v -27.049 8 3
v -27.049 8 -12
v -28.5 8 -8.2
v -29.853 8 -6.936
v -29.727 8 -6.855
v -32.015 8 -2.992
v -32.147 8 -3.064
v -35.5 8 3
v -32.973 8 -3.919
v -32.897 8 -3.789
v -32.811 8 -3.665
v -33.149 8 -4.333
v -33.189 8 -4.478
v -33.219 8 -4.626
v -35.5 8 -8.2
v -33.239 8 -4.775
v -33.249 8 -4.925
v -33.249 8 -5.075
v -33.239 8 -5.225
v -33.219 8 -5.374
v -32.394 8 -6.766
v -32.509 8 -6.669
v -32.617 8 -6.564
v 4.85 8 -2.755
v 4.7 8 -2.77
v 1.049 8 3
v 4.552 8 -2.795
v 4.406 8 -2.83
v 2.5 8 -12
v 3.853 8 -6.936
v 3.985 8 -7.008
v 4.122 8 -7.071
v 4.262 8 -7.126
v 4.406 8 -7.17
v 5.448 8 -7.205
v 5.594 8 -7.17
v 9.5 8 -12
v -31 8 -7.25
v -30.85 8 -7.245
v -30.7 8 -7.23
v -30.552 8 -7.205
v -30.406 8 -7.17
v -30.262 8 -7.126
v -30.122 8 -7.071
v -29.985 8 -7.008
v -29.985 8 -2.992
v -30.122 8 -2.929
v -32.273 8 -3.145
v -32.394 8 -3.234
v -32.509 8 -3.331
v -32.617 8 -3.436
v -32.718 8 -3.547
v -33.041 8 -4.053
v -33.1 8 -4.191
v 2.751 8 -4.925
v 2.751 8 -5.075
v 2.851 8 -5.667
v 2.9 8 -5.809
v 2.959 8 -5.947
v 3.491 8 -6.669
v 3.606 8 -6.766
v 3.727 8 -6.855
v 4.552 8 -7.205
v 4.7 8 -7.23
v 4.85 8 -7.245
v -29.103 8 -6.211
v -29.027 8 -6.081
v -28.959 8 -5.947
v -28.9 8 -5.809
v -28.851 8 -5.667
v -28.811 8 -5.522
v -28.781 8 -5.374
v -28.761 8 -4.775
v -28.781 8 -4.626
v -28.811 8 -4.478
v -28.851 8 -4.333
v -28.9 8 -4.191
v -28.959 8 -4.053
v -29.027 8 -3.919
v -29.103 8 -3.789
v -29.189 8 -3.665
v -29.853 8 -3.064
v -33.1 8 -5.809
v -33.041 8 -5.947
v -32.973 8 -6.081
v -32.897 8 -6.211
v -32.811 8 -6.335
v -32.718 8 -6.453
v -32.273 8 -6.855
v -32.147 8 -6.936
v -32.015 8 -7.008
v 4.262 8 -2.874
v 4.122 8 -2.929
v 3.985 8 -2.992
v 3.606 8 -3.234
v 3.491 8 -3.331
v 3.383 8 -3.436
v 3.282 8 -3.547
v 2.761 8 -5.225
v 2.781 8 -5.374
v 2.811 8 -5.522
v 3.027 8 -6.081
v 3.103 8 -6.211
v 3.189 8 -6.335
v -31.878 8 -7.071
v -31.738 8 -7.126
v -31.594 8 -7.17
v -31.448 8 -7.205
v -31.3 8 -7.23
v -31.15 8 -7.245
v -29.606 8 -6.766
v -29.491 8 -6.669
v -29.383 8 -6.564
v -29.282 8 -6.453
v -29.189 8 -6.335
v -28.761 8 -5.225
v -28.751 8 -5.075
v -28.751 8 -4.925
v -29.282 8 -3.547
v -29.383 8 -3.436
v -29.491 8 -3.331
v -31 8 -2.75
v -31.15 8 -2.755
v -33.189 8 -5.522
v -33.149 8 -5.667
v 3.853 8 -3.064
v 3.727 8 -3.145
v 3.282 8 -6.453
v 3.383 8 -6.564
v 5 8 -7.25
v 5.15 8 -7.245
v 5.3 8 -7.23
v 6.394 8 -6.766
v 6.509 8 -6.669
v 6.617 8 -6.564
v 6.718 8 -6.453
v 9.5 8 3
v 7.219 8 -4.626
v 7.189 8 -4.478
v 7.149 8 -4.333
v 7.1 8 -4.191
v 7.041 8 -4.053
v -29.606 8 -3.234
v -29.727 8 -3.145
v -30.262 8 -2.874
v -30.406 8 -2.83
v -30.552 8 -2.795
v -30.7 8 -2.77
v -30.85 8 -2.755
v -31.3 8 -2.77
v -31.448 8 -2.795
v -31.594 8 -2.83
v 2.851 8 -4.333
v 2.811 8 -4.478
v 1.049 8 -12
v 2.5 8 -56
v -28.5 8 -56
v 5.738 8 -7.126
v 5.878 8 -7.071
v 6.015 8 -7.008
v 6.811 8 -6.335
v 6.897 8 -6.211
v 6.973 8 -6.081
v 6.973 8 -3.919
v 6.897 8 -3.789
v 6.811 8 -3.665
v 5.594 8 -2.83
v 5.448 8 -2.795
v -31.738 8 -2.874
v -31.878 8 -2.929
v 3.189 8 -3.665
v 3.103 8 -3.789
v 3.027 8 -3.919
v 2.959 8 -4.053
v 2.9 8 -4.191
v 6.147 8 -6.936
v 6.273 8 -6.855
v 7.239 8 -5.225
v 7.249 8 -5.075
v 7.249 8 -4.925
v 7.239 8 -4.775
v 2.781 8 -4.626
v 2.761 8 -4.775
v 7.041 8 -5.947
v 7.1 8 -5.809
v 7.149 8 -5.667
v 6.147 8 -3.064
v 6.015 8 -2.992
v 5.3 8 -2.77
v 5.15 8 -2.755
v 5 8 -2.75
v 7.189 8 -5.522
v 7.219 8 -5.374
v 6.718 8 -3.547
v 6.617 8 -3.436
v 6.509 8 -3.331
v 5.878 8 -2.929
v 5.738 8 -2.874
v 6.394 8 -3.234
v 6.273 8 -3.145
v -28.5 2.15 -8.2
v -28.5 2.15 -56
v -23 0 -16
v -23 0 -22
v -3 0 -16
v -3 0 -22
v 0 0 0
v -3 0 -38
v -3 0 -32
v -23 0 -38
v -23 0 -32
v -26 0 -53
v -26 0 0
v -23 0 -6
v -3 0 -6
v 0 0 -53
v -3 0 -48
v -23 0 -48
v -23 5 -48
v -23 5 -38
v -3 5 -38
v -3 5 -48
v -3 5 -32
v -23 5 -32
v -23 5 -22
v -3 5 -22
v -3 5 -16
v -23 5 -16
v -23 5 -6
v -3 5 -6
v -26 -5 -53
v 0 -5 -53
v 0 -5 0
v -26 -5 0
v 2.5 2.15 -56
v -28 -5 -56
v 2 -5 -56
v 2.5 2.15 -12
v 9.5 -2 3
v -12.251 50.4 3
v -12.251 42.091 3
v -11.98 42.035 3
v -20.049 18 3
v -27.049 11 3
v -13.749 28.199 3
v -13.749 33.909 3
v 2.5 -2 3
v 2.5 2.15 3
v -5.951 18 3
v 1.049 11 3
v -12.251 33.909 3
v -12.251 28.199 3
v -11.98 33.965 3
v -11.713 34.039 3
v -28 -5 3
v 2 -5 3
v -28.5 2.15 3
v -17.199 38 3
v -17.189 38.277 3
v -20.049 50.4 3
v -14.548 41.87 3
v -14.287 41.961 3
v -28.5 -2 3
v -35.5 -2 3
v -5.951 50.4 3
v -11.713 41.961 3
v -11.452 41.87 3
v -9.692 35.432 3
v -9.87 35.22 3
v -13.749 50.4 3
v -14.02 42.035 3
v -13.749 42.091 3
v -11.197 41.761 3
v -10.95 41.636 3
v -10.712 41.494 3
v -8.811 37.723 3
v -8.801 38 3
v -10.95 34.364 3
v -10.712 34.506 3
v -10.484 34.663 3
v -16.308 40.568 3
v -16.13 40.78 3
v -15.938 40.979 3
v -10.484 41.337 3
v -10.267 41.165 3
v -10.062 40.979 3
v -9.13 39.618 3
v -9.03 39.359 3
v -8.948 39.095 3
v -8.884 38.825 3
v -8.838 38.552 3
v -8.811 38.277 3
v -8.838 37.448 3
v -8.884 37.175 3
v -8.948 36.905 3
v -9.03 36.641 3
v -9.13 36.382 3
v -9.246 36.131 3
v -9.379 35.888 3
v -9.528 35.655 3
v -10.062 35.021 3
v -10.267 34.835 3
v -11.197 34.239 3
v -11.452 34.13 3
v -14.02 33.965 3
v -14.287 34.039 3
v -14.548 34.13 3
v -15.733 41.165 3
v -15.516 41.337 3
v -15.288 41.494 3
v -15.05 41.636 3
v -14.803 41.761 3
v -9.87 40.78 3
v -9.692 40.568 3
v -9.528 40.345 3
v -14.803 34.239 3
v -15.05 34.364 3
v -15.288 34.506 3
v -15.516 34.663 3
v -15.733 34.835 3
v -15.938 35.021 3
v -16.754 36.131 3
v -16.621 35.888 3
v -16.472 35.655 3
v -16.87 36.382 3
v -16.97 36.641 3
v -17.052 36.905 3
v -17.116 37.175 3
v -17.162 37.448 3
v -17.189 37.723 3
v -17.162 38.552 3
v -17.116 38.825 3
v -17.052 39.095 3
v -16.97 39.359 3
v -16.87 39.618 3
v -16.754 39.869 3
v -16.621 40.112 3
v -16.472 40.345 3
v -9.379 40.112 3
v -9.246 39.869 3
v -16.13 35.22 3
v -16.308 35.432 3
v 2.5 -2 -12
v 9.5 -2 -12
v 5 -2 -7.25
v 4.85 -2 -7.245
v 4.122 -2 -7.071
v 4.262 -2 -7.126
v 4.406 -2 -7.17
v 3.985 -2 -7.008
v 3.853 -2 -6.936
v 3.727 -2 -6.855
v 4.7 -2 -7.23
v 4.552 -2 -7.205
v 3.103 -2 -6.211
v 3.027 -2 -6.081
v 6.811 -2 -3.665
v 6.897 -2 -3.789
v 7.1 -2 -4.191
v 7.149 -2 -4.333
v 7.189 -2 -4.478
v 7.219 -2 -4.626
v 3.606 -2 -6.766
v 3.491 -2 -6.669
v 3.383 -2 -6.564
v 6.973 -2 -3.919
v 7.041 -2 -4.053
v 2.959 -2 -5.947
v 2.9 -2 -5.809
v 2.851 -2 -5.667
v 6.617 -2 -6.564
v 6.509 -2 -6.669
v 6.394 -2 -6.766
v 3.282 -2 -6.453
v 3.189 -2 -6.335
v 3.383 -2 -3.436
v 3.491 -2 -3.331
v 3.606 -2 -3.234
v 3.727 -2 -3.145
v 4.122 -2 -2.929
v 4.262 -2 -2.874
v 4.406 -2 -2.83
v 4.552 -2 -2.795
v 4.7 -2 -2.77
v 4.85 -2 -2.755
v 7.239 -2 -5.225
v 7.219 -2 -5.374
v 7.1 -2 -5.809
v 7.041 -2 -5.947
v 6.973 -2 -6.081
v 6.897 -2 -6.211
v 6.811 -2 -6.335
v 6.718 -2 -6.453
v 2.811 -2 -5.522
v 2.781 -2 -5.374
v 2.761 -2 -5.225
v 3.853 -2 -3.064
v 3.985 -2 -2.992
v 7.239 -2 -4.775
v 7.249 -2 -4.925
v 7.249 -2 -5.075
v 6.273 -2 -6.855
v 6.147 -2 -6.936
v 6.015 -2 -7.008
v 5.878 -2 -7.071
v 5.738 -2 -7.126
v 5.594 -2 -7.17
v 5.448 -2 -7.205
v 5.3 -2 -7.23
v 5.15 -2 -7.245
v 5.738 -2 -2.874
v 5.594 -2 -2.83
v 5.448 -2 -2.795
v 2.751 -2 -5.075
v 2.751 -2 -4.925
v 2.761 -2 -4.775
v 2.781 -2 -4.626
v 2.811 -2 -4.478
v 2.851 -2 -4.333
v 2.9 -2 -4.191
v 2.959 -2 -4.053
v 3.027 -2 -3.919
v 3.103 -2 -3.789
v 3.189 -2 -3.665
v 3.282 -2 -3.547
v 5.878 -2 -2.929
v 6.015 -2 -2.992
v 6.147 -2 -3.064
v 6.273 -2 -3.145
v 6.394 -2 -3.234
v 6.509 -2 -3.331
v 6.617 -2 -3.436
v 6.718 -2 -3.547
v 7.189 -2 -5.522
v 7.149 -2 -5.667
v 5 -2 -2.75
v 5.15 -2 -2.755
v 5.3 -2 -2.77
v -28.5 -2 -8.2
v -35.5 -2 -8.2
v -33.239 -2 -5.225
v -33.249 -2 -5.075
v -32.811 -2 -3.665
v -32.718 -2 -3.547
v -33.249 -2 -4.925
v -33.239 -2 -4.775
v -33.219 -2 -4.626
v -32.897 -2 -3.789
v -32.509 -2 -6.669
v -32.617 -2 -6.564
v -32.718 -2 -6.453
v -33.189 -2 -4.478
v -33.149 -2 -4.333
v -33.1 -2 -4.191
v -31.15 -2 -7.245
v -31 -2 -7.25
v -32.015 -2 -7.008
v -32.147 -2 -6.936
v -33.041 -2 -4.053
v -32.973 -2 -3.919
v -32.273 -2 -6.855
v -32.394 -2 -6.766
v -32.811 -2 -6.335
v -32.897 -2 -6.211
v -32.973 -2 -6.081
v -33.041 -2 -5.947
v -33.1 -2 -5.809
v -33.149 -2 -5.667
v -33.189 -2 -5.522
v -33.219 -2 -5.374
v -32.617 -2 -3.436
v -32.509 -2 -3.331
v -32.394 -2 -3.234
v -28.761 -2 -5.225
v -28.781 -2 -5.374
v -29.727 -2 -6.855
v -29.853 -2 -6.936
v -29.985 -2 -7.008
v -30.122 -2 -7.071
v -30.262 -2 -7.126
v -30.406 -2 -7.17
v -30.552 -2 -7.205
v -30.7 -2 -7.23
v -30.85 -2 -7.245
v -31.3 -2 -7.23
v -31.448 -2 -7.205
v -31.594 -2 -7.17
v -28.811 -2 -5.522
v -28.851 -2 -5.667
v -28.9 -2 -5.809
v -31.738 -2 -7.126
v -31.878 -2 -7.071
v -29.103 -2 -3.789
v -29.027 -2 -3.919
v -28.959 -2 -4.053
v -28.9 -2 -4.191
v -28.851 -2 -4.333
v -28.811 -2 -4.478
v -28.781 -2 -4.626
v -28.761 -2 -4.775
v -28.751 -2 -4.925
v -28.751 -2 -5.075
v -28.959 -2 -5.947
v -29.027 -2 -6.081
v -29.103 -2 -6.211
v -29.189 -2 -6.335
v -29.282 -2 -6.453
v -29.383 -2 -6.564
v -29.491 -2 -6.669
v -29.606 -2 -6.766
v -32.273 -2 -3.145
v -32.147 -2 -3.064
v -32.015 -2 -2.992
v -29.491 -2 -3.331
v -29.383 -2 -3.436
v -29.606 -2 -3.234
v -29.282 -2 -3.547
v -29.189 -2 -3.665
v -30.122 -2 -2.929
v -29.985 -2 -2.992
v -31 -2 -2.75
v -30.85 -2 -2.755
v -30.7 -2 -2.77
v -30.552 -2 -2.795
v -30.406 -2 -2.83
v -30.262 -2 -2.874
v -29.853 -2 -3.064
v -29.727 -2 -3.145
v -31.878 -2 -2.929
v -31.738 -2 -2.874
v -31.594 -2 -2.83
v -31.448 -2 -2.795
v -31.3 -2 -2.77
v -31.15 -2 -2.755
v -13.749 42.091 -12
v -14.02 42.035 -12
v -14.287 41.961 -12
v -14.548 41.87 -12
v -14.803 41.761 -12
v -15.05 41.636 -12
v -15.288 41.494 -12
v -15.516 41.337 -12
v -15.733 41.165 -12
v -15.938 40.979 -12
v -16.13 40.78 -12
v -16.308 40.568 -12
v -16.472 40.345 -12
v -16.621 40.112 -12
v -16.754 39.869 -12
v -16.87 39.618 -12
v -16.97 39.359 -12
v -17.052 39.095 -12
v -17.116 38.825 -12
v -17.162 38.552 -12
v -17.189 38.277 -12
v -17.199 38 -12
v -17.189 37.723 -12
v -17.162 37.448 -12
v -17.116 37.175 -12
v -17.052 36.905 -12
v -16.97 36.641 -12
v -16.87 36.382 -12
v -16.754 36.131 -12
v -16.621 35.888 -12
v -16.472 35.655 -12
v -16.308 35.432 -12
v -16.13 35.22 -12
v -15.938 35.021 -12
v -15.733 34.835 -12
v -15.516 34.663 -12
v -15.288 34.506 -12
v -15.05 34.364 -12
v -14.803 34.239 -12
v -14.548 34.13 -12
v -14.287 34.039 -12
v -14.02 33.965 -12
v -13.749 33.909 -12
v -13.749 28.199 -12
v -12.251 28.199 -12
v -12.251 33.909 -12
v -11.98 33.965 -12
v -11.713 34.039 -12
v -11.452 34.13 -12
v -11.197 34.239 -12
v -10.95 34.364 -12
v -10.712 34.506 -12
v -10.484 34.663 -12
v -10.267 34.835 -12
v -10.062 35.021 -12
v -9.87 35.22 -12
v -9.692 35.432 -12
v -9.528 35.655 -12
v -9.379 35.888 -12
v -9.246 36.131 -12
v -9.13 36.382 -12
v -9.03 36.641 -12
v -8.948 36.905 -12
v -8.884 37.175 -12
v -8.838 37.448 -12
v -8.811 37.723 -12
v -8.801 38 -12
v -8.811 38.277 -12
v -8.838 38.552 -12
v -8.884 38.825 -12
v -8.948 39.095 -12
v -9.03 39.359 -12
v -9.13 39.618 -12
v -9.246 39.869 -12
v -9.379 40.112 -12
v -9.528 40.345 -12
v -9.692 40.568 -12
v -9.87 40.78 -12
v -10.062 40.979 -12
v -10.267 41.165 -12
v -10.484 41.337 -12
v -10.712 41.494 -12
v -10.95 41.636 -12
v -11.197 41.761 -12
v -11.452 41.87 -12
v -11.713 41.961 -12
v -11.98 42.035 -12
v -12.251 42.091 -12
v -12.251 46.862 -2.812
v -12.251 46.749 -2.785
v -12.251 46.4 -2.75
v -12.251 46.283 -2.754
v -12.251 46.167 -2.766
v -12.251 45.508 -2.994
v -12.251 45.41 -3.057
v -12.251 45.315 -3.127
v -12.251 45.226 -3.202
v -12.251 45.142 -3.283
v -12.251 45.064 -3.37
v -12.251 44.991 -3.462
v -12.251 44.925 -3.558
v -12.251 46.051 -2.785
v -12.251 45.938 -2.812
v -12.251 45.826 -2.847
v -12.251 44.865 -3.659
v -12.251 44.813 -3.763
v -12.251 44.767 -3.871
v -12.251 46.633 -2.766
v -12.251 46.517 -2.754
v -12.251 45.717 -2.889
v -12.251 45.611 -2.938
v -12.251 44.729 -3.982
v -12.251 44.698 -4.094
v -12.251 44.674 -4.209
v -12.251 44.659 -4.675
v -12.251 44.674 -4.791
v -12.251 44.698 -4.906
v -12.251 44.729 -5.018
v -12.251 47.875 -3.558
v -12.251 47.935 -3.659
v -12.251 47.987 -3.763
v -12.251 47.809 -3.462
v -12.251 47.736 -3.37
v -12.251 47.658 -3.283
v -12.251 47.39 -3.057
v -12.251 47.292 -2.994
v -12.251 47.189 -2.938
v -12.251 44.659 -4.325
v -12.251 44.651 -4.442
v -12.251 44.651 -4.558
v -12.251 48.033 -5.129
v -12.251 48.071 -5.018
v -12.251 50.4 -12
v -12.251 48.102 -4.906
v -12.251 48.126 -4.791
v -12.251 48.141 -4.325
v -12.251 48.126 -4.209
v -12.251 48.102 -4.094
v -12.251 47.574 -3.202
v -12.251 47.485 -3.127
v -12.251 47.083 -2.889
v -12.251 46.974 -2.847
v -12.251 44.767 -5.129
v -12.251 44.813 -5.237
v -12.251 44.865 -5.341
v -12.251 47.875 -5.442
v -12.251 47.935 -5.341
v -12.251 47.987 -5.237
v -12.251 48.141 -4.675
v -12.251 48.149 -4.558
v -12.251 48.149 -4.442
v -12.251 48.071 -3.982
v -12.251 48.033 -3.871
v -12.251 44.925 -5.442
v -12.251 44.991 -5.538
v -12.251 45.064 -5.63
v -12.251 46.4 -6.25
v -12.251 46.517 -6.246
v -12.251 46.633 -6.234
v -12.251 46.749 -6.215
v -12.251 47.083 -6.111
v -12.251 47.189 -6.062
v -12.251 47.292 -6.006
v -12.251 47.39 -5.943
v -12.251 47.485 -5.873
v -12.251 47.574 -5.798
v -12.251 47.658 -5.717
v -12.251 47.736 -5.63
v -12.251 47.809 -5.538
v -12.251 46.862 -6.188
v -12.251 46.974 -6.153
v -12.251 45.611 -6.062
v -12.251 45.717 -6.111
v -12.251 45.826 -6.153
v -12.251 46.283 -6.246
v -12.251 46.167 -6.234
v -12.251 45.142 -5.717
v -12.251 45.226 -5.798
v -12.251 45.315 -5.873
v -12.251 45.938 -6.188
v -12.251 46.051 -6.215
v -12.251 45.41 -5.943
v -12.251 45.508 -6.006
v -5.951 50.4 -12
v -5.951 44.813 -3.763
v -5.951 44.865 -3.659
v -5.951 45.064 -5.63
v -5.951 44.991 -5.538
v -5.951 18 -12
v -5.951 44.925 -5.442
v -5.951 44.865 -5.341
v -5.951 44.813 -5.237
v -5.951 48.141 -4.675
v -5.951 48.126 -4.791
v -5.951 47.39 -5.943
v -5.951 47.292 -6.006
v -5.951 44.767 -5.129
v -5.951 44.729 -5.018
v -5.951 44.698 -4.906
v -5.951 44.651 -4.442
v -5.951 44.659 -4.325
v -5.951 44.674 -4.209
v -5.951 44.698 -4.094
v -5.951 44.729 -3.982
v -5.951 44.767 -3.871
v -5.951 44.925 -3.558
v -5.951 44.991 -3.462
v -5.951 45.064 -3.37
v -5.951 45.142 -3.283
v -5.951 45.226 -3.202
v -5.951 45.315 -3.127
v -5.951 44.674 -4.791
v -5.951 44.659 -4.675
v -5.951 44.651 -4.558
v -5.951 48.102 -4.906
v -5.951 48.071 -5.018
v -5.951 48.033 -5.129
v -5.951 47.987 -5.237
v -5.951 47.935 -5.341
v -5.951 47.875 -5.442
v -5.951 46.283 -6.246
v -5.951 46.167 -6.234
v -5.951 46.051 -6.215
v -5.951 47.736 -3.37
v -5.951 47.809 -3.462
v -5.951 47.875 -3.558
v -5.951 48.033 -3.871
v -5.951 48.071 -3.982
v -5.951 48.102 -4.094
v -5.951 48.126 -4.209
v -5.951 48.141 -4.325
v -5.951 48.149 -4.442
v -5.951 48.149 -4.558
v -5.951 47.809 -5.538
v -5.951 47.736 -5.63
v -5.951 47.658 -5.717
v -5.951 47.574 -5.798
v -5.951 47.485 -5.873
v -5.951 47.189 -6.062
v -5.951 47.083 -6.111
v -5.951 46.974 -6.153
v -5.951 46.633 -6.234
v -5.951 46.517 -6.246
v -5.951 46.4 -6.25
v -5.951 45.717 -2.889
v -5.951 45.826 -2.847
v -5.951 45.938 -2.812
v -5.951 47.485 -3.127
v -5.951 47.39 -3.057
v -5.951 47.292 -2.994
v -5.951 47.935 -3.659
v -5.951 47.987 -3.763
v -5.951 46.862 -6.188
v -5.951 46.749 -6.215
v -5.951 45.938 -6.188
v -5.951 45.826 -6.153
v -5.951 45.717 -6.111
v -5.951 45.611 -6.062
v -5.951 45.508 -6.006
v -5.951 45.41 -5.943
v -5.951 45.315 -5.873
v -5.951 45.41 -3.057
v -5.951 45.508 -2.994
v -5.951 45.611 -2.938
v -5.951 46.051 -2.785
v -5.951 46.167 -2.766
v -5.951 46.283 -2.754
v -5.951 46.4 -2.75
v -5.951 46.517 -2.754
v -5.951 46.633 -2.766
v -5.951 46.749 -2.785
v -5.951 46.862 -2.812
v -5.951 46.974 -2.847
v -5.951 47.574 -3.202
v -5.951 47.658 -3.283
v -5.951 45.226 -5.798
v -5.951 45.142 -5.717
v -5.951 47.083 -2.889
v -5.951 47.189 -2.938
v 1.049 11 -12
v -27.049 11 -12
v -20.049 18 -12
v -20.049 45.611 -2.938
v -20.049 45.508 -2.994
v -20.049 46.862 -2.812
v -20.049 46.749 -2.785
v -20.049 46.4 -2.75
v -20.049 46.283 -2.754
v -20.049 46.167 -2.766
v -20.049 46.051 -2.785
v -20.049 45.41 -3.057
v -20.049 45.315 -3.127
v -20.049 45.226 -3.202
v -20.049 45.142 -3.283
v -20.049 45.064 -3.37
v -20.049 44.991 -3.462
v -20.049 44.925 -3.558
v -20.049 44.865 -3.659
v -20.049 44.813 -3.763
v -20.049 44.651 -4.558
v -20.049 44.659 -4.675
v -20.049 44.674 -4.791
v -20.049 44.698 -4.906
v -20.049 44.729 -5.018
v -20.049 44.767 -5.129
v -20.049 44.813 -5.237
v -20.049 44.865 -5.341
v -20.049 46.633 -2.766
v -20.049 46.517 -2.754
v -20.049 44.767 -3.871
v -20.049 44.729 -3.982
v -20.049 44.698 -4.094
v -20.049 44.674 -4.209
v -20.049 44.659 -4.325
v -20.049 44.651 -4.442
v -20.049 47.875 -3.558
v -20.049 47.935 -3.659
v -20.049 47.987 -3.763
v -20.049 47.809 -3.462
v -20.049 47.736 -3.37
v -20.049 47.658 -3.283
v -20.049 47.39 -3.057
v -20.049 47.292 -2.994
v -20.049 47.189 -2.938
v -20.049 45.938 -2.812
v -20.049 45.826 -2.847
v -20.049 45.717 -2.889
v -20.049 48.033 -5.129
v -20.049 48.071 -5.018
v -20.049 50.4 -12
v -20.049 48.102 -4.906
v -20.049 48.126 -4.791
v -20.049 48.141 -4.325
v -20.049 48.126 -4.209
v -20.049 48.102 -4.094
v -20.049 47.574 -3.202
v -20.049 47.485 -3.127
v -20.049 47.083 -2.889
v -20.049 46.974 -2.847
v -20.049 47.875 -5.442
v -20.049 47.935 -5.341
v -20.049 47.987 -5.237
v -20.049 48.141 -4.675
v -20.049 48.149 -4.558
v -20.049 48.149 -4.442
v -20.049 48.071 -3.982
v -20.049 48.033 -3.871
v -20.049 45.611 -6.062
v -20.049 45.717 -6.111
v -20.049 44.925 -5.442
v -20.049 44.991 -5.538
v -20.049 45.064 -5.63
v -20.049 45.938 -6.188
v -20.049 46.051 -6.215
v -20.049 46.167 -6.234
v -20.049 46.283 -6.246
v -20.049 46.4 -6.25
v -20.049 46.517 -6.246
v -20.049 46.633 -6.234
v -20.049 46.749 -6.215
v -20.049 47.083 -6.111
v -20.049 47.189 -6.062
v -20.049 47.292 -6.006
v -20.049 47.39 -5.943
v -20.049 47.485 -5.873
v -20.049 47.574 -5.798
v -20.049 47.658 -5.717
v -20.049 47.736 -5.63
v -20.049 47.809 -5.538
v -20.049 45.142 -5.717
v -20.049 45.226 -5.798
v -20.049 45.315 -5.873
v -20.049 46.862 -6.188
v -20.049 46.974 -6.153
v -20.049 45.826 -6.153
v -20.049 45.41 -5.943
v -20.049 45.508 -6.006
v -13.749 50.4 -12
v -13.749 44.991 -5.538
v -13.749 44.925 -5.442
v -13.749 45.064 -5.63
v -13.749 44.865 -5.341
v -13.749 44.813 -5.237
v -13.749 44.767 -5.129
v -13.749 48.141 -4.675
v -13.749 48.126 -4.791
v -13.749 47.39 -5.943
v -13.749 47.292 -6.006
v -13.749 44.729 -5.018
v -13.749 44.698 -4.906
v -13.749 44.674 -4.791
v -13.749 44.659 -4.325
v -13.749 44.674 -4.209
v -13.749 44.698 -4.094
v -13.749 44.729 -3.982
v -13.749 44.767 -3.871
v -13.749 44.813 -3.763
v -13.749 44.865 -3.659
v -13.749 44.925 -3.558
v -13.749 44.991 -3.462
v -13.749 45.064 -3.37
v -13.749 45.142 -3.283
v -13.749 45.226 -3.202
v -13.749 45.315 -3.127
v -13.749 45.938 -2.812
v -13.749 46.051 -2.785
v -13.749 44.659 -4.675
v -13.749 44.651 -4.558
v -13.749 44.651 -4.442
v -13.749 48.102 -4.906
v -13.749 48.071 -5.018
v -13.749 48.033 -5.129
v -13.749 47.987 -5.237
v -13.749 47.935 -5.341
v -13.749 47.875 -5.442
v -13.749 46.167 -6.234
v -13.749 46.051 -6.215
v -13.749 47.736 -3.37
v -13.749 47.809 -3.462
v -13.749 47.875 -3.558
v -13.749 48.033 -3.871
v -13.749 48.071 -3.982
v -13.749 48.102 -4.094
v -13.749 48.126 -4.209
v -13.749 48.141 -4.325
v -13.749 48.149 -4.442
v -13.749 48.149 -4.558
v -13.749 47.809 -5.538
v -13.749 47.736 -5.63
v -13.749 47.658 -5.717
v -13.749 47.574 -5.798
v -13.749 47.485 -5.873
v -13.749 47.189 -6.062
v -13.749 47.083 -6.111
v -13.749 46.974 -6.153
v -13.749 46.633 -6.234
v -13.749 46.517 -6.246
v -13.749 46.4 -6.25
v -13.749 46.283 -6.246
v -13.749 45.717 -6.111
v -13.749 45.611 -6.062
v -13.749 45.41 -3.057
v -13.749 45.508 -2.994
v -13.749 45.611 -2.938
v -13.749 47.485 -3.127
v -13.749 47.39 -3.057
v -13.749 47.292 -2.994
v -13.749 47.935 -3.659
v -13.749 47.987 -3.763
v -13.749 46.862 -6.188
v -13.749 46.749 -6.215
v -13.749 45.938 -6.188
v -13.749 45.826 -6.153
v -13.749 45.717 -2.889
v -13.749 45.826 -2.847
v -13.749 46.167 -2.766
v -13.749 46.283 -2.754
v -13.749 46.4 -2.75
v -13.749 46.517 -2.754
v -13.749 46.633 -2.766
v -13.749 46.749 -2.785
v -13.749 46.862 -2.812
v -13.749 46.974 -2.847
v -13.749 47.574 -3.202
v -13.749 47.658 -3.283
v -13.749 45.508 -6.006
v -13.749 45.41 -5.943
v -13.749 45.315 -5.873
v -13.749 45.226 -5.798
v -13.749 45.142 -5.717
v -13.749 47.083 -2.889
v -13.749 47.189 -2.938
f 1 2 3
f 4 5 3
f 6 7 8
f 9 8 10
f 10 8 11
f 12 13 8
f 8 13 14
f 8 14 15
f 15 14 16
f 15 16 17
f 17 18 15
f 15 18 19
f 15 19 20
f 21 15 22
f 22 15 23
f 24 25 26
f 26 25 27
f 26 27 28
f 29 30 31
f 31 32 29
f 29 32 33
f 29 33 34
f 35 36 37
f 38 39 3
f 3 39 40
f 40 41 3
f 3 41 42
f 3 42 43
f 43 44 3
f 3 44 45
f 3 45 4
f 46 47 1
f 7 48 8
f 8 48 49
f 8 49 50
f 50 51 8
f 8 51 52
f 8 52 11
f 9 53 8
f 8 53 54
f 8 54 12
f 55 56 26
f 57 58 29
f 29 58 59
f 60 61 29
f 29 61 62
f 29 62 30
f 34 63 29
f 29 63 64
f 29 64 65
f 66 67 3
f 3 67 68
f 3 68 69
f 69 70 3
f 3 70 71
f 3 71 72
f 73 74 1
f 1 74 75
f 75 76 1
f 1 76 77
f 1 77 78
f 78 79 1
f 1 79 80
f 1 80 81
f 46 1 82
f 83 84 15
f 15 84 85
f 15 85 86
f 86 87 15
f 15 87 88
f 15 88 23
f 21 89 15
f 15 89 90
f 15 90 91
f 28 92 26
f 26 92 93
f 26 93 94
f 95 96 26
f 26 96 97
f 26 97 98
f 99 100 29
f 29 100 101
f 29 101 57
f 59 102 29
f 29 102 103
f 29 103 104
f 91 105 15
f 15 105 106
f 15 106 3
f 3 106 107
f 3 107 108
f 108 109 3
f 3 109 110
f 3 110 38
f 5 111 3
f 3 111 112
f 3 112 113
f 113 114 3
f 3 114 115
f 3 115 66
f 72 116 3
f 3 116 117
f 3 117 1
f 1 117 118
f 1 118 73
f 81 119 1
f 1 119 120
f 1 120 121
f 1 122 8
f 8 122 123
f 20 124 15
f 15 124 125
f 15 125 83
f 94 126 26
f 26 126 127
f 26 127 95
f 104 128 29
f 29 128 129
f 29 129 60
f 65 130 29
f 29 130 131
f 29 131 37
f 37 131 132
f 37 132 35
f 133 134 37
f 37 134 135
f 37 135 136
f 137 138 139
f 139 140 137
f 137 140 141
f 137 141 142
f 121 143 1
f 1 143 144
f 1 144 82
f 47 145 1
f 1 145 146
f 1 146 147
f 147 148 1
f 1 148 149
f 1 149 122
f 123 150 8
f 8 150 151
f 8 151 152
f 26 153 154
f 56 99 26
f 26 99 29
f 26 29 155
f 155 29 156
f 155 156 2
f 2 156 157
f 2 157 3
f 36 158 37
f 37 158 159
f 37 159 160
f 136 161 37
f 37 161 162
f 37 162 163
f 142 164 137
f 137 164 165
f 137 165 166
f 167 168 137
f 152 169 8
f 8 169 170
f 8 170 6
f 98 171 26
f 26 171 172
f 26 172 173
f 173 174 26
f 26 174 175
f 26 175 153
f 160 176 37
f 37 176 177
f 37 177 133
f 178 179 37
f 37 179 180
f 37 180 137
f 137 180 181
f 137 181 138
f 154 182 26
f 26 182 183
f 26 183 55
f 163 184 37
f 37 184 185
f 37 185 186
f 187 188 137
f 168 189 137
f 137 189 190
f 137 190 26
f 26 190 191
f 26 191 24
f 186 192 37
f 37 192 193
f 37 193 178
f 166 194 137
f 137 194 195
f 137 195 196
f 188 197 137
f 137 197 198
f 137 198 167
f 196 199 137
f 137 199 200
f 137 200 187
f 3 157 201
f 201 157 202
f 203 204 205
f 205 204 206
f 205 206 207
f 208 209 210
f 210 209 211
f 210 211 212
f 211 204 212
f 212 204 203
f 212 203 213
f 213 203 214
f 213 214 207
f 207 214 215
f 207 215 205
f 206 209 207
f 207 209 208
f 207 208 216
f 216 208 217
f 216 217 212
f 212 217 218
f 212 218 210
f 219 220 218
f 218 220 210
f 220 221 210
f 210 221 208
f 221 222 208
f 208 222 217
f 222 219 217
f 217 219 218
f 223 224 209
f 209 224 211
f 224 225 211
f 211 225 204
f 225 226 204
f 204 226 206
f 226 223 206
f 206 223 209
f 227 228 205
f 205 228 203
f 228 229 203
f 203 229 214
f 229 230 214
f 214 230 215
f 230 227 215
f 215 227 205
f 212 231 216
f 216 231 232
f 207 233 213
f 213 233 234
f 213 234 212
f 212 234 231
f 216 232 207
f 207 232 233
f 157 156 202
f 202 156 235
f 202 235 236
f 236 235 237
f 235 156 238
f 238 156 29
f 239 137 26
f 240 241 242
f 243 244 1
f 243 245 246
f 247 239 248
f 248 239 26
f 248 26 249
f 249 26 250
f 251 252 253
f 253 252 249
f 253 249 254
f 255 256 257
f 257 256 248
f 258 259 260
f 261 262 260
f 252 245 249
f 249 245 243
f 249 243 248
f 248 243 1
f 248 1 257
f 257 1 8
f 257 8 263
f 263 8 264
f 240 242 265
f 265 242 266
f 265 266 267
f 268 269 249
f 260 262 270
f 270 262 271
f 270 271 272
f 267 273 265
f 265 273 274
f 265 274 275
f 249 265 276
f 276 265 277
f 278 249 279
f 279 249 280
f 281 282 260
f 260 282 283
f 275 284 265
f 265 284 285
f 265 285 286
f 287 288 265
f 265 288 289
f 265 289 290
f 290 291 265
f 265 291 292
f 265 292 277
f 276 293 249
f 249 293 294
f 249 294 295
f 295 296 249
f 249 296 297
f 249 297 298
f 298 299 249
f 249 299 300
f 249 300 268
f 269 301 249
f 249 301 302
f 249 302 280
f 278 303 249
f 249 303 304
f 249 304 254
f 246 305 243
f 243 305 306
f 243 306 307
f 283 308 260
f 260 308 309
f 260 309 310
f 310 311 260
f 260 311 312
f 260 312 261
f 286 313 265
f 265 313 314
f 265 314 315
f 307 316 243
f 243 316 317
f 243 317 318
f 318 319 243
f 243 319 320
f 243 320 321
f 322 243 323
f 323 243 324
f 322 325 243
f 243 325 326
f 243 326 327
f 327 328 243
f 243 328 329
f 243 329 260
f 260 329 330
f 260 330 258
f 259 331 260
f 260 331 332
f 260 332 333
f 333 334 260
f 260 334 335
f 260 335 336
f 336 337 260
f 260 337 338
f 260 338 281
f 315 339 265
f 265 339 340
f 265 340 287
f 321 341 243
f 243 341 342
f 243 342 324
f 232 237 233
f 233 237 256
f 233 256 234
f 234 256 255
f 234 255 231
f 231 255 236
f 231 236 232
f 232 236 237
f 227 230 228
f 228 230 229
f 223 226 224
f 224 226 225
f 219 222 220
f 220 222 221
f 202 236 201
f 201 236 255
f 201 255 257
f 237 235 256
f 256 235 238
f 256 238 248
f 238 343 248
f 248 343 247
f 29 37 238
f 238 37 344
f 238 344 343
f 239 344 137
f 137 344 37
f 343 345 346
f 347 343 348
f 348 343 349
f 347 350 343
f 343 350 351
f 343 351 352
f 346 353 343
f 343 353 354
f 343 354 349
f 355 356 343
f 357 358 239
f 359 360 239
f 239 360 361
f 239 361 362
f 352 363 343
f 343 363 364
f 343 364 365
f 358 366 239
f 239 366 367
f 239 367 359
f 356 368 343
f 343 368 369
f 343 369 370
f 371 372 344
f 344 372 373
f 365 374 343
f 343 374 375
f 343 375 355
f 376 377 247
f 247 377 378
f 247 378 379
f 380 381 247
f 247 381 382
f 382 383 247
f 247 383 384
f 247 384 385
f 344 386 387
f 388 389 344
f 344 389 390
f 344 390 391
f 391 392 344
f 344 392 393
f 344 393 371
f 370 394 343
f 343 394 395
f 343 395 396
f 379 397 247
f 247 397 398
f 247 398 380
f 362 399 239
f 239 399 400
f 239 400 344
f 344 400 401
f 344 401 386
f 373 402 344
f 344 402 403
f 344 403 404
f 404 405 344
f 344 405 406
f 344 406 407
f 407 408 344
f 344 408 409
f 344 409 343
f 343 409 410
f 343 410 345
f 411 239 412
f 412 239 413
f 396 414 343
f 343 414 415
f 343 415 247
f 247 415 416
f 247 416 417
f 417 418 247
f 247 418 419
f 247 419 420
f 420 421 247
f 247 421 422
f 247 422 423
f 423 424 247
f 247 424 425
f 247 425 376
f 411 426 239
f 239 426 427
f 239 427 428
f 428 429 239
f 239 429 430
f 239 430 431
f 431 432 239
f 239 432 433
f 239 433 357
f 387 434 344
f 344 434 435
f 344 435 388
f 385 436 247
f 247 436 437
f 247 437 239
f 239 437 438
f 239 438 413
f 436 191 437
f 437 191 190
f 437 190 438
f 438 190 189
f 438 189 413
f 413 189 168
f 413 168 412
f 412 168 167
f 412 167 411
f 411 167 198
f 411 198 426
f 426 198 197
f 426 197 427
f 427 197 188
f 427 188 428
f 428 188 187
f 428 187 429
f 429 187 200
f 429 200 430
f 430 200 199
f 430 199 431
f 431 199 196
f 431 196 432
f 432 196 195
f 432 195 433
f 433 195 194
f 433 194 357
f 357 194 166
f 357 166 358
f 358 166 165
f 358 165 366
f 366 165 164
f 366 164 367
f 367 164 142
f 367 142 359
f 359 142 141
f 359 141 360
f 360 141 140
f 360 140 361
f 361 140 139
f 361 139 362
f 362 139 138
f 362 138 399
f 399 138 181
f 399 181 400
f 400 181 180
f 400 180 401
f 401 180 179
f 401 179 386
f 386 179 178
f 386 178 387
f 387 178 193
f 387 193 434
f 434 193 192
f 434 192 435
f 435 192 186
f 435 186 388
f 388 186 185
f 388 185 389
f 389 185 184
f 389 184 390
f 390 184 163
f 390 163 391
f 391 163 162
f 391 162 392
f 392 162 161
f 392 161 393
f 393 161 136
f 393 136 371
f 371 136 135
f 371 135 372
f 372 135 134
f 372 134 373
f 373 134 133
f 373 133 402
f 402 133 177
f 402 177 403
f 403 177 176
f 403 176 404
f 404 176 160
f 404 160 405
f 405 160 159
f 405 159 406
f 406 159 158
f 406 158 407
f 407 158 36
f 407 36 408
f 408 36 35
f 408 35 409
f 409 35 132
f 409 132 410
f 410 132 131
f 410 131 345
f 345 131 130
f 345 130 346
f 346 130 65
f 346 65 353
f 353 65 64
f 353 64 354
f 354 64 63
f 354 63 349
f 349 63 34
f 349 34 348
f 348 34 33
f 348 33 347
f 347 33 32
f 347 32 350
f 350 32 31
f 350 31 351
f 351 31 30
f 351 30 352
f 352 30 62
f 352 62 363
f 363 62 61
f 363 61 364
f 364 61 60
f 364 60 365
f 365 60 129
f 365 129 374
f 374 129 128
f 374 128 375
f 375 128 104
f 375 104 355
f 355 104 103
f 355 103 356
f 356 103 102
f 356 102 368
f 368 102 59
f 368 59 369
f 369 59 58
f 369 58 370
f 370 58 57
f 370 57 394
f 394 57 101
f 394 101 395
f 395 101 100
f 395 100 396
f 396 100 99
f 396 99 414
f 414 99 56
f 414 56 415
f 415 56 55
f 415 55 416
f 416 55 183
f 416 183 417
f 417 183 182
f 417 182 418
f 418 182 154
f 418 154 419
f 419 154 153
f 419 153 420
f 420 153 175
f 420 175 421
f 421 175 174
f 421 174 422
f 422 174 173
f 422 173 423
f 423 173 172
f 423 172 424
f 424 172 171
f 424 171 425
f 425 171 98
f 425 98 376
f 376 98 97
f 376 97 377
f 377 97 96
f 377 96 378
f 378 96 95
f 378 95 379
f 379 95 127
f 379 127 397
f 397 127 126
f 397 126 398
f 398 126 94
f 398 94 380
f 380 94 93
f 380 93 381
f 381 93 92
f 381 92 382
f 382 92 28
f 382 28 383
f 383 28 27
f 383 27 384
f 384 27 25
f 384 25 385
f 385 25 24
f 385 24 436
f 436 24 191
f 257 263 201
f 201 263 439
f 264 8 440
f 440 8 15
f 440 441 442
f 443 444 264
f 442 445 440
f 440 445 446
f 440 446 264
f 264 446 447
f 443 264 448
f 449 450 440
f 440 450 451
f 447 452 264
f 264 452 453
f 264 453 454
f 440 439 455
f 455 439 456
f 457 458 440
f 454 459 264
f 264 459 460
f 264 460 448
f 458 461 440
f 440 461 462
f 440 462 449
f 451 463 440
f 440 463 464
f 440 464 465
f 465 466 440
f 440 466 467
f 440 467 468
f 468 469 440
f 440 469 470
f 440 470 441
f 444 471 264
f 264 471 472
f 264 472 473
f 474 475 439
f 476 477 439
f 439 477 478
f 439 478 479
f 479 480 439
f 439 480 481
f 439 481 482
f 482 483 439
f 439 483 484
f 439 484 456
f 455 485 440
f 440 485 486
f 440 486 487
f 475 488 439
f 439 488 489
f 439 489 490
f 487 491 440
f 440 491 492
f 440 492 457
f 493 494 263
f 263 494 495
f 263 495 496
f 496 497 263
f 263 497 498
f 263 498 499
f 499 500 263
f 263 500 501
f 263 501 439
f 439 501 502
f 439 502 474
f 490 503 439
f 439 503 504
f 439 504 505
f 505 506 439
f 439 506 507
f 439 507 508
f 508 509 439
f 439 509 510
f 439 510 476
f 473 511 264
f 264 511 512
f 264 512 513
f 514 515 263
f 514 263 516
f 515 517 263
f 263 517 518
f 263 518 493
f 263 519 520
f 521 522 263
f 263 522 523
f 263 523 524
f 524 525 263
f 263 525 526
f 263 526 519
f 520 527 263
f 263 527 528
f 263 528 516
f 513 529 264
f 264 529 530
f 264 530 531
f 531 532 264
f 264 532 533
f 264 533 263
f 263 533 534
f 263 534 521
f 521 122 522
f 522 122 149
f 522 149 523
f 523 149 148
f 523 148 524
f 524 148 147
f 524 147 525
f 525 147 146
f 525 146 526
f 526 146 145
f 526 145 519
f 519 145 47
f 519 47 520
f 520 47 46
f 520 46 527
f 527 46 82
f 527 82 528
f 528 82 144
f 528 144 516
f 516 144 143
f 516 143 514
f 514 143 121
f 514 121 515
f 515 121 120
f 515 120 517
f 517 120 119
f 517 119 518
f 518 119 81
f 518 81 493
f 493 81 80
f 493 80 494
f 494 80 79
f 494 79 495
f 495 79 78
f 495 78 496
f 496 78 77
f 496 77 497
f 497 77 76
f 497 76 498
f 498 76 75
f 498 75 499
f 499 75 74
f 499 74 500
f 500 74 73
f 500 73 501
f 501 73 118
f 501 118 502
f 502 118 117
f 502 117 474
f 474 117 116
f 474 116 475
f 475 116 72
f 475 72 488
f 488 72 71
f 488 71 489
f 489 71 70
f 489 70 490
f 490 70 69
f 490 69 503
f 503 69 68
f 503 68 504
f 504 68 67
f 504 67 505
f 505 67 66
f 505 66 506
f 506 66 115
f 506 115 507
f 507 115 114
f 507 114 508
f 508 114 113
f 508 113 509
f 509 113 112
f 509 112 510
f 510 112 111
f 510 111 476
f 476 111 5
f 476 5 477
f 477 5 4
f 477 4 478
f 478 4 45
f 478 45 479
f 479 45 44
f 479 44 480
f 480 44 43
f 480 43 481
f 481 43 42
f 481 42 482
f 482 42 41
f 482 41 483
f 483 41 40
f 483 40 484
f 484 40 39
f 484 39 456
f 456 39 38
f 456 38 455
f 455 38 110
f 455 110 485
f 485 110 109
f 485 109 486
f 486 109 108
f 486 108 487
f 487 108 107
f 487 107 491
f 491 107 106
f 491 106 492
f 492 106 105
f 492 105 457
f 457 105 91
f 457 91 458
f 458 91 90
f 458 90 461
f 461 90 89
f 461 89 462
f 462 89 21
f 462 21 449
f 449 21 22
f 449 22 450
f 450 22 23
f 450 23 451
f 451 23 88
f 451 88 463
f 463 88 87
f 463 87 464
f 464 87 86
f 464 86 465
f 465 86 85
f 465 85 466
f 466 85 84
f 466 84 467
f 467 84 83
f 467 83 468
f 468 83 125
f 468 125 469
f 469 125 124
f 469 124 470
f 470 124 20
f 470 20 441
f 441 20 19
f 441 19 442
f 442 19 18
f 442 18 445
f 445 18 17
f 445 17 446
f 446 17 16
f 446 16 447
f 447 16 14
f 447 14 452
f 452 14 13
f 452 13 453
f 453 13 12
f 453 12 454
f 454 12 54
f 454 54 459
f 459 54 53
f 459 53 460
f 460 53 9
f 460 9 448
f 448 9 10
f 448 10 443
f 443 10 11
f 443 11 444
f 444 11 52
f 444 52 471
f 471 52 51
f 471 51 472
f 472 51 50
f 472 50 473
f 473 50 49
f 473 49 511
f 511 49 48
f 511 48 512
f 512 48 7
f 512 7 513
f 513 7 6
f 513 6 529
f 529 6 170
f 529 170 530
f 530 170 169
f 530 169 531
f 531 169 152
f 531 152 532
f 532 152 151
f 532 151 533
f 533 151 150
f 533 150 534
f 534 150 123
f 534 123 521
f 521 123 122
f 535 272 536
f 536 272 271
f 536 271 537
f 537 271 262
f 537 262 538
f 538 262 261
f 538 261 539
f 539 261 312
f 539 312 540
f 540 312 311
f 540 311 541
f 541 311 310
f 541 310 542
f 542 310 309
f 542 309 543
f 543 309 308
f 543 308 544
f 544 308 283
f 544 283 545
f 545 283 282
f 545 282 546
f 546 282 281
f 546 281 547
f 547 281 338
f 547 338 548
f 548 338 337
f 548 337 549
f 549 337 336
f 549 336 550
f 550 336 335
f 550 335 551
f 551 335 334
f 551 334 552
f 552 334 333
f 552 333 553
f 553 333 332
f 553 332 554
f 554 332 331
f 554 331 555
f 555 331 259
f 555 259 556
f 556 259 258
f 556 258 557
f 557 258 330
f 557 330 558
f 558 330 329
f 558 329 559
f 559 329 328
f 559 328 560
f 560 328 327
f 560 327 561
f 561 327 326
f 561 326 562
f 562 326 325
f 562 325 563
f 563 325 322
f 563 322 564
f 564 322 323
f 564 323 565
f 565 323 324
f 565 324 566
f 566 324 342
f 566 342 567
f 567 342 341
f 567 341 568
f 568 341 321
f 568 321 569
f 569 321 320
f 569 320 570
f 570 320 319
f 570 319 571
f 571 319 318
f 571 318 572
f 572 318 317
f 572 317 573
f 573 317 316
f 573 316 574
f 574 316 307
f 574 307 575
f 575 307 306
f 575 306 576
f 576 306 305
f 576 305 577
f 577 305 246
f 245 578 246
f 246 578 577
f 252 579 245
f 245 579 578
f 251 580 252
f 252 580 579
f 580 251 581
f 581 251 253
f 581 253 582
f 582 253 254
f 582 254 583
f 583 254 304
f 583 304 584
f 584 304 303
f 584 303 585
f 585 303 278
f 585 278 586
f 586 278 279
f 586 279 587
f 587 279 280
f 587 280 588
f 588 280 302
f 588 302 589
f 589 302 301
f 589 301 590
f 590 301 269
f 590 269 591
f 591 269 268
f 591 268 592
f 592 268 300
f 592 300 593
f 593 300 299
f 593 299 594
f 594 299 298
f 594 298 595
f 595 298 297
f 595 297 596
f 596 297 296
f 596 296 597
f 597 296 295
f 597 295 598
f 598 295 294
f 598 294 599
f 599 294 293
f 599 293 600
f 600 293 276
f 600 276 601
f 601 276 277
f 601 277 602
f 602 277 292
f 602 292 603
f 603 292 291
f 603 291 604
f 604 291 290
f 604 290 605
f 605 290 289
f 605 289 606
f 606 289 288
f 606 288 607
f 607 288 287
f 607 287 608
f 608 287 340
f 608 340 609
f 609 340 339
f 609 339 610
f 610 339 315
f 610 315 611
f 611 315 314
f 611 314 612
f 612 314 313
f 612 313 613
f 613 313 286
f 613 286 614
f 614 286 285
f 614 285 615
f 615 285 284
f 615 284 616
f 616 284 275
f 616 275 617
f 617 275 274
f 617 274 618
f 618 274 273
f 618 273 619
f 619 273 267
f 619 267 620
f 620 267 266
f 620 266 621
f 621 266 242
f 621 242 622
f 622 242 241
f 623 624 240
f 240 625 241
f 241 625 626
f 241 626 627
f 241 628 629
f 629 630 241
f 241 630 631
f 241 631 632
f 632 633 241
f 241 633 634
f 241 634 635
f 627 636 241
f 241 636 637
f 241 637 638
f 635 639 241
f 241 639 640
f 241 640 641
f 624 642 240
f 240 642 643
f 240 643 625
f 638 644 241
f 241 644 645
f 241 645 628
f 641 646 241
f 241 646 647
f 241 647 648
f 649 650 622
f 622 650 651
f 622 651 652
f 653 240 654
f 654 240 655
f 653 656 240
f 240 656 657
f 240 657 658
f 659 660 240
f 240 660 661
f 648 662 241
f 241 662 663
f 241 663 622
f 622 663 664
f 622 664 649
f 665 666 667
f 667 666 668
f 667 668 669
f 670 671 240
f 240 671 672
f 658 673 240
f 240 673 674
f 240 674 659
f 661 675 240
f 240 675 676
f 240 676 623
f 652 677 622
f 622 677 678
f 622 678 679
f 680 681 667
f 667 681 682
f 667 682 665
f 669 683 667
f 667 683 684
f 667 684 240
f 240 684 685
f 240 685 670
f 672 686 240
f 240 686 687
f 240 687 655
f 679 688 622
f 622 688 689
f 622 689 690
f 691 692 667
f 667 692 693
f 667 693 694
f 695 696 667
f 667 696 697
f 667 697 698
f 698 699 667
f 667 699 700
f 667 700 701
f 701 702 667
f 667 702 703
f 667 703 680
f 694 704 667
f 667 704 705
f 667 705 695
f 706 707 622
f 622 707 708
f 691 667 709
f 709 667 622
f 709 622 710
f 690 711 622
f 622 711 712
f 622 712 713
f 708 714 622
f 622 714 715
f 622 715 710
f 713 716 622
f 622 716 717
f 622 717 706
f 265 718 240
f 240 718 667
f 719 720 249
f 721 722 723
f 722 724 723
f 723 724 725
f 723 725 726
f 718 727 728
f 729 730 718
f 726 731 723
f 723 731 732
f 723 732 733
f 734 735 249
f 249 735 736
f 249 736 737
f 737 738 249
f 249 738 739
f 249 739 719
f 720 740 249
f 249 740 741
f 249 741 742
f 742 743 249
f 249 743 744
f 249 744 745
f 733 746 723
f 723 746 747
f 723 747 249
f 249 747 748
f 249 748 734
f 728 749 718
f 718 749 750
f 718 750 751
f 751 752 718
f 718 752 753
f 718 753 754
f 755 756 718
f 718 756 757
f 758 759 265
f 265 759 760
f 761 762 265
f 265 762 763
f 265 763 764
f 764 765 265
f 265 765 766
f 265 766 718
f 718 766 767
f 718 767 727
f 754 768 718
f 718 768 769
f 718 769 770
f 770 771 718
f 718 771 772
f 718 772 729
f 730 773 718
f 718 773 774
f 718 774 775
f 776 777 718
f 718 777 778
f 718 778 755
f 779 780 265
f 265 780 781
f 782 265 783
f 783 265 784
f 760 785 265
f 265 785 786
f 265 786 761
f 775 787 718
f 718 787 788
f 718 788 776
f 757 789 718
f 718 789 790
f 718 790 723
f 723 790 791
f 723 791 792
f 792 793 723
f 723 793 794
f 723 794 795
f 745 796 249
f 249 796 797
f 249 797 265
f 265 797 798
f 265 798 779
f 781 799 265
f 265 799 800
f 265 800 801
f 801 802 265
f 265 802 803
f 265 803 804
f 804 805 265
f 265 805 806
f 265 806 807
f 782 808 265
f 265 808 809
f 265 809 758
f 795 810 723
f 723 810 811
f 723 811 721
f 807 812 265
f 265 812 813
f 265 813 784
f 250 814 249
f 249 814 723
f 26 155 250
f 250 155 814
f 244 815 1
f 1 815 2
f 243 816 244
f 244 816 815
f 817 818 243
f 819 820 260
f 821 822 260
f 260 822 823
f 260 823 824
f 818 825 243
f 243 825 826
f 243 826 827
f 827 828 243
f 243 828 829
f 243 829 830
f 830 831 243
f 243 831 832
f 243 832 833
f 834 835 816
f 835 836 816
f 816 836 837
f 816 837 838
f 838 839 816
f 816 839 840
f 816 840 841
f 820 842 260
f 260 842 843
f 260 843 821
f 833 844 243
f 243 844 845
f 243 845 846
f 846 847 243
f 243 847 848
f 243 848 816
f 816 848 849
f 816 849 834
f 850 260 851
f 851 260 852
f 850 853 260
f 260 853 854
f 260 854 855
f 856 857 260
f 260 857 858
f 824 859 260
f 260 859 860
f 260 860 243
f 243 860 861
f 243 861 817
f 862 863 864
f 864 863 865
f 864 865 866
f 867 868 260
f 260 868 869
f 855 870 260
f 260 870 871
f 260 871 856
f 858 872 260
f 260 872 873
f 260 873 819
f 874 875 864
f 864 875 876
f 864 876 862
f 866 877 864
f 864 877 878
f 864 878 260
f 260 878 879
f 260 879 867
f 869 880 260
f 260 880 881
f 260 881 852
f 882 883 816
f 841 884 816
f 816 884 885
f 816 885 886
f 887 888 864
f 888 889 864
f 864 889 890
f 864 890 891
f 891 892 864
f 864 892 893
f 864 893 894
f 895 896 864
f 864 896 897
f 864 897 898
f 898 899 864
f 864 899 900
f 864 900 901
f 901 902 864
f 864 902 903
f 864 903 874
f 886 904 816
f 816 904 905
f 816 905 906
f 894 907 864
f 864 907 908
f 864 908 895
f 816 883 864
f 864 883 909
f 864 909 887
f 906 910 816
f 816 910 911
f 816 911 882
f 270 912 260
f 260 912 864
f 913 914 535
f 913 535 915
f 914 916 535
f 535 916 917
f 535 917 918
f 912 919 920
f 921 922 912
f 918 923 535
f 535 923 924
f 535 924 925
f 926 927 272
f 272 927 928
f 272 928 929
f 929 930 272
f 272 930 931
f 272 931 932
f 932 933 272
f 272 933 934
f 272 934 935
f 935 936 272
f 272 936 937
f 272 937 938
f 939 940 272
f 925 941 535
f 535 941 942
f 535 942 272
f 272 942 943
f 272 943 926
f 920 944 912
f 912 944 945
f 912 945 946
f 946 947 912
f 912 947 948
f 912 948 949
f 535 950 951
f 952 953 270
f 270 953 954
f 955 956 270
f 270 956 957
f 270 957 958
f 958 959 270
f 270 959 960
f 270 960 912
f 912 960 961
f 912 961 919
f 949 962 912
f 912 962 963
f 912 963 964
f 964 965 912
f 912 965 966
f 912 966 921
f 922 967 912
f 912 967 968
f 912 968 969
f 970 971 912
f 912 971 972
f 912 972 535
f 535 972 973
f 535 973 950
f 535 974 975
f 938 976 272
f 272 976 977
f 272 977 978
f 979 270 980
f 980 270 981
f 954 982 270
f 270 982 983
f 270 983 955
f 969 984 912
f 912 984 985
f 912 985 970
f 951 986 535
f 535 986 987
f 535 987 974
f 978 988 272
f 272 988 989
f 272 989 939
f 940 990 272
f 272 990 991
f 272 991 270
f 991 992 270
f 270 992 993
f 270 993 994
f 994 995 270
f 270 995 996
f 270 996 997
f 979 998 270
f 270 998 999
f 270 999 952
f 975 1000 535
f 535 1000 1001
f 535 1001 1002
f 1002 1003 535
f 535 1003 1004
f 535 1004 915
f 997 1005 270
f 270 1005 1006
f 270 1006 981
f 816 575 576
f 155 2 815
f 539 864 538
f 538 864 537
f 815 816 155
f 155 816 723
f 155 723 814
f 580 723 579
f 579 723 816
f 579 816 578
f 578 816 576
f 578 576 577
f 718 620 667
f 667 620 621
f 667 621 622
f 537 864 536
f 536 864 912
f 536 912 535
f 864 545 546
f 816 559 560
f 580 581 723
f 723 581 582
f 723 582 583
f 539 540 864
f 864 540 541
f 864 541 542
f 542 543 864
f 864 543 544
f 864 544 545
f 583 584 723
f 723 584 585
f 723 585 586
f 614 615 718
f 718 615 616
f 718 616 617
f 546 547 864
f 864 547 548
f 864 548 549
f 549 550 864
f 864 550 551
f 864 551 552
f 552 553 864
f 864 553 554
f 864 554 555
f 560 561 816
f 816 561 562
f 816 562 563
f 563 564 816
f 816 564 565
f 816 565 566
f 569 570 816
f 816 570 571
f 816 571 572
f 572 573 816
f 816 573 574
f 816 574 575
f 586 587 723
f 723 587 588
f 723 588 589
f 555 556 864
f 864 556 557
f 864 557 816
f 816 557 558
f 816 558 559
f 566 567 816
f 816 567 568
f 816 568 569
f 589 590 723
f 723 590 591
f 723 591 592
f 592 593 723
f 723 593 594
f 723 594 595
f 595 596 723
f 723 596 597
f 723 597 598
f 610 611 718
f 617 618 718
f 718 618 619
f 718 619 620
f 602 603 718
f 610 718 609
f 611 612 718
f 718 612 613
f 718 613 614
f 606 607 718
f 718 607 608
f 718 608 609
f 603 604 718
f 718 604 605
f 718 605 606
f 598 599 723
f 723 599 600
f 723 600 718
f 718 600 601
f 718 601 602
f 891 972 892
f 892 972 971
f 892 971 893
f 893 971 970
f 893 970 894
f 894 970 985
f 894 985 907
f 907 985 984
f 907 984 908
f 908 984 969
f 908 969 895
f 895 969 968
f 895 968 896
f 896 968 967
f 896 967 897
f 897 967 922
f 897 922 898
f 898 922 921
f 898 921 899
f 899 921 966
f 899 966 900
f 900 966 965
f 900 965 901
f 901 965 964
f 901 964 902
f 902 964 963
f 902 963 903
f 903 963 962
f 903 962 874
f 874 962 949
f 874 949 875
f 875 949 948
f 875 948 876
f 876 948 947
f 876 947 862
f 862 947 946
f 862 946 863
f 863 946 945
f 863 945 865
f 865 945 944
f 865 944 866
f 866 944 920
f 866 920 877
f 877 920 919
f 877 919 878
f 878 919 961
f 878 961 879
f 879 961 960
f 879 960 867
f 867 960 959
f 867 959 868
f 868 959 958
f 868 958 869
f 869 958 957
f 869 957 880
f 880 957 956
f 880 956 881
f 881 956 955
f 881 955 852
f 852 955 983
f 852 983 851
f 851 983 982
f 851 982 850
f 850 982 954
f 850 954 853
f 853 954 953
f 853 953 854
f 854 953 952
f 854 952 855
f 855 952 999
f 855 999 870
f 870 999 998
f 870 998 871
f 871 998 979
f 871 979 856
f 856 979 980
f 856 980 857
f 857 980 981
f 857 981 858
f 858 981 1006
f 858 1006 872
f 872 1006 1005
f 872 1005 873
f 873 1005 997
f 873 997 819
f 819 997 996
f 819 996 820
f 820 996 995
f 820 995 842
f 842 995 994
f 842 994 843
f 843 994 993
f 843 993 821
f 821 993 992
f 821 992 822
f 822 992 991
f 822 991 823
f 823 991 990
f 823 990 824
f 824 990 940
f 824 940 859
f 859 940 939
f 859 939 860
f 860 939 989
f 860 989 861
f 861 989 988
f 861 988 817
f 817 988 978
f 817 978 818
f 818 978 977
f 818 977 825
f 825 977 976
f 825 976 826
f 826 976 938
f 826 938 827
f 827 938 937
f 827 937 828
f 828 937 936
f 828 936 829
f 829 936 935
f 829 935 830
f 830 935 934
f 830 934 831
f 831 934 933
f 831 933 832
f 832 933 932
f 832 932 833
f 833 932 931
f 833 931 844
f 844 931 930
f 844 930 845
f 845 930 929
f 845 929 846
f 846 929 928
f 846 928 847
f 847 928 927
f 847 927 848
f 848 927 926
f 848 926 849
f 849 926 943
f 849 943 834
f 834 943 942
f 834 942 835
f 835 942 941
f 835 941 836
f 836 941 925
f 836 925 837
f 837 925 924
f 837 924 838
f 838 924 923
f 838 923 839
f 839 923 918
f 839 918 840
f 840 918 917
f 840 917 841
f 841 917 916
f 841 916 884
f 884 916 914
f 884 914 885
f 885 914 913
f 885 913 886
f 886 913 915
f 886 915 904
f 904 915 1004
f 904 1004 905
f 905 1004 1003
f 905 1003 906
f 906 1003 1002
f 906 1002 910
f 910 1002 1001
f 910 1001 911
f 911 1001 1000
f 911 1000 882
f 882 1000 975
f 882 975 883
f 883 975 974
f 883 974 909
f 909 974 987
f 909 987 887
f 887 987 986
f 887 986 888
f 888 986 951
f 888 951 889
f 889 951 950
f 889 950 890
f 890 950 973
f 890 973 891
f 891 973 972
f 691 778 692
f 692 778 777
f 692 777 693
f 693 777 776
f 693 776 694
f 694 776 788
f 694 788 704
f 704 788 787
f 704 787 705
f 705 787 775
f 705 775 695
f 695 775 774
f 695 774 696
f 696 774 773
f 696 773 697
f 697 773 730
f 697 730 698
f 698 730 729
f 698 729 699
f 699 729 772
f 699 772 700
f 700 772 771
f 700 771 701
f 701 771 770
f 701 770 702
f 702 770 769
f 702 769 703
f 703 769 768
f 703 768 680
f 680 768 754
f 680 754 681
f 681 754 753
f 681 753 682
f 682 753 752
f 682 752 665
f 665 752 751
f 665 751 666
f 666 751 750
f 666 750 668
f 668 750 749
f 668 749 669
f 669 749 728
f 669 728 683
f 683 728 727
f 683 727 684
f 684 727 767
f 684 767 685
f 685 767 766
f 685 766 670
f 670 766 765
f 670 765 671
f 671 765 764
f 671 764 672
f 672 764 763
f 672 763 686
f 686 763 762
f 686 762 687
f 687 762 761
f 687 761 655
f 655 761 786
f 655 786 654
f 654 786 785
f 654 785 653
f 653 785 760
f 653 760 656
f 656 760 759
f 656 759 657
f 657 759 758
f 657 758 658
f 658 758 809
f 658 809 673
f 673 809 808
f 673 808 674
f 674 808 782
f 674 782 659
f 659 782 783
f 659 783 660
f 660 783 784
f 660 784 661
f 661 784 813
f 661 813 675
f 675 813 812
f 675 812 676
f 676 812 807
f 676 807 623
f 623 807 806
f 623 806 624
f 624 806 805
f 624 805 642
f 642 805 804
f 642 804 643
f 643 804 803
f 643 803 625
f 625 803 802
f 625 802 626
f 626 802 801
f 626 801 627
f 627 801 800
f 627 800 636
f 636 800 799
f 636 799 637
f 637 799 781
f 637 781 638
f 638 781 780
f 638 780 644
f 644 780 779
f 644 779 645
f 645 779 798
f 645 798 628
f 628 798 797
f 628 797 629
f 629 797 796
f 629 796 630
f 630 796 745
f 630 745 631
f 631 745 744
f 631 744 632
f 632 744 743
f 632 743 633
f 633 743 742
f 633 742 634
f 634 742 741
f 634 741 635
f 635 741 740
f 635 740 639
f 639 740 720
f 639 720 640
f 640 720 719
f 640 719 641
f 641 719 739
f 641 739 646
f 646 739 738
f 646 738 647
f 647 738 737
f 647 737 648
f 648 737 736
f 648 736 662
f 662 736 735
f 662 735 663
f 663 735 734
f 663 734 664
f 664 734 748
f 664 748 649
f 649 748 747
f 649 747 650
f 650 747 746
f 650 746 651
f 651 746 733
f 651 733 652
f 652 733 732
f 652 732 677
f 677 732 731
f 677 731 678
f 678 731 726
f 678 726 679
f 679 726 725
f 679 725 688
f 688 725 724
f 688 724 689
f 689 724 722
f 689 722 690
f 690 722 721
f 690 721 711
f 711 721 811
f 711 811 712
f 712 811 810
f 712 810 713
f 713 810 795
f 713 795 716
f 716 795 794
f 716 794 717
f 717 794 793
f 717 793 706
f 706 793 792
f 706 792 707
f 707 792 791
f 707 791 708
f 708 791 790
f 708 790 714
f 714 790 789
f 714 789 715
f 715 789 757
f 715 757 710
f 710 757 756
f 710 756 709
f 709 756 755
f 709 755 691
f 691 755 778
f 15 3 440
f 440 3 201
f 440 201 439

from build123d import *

# Parameters (mm, degrees)
SKETCH1_W                = 26
SKETCH1_H                = 53
SKETCH1_W_2              = 20
SKETCH1_H_2              = 10
BOSS_EXTRUDE1_DEPTH      = 5
SKETCH2_W                = 31
SKETCH2_H                = 59
SKETCH2_W_2              = 26
SKETCH2_H_2              = 53
BOSS_EXTRUDE2_DEPTH      = 10
SKETCH3_W                = 31
SKETCH3_H                = 59
BOSS_EXTRUDE3_DEPTH      = 3
CHAMFER1_SIZE            = 0.5
CHAMFER1_SIZE2           = 7.150333128
SKETCH10_W               = 7
SKETCH10_H               = 15
SKETCH10_R               = 2.25
BOSS_EXTRUDE7_DEPTH      = 10
BOSS_EXTRUDE9_DEPTH      = 3
BOSS_EXTRUDE9_DEPTH_BACK = 12
SKETCH12_R               = 1.75
CUT_EXTRUDE4_DEPTH       = 30.54863335
SKETCH13_W               = 7
SKETCH13_H               = 3.8
CUT_EXTRUDE5_DEPTH       = 10


with BuildPart() as part:
    # Sketch1 → Boss-Extrude1 (new body)
    with BuildSketch(Plane(origin=(0, 0, 0), x_dir=(1, 0, 0), z_dir=(0, 1, 0))):
        with Locations((-13, 26.5)):
            Rectangle(SKETCH1_W, SKETCH1_H)
        with Locations((-13, 27)):
            Rectangle(SKETCH1_W_2, SKETCH1_H_2, mode=Mode.SUBTRACT)
        with Locations((-13, 43)):
            Rectangle(SKETCH1_W_2, SKETCH1_H_2, mode=Mode.SUBTRACT)
        with Locations((-13, 11)):
            Rectangle(SKETCH1_W_2, SKETCH1_H_2, mode=Mode.SUBTRACT)
    extrude(amount=BOSS_EXTRUDE1_DEPTH)

    # Sketch2 → Boss-Extrude2 (add)
    with BuildSketch(Plane(origin=(0, 5, 0), x_dir=(1, 0, 0), z_dir=(0, 1, 0))):
        with Locations((-13, 26.5)):
            Rectangle(SKETCH2_W, SKETCH2_H)
        with Locations((-13, 26.5)):
            Rectangle(SKETCH2_W_2, SKETCH2_H_2, mode=Mode.SUBTRACT)
    extrude(amount=-BOSS_EXTRUDE2_DEPTH)

    # Sketch3 → Boss-Extrude3 (add)
    with BuildSketch(Plane(origin=(0, 5, 0), x_dir=(1, 0, 0), z_dir=(0, 1, 0))):
        with Locations((-13, 26.5)):
            Rectangle(SKETCH3_W, SKETCH3_H)
    extrude(amount=BOSS_EXTRUDE3_DEPTH)

    # Chamfer1
    chamfer1_edges = [part.edges().sort_by_distance(p)[0] for p in [
        (-28.5, -5, -26.5),
        (2.5, -5, -26.5),
    ]]
    chamfer1_side = [part.faces().sort_by_distance(p)[0] for p in [
        (-13, -5, -55.333516692),
    ]]
    chamfer(chamfer1_edges, length=CHAMFER1_SIZE, length2=CHAMFER1_SIZE2, reference=chamfer1_side[0])

    # Sketch10 → Boss-Extrude7 (add)
    with BuildSketch(Plane(origin=(0, 8, 0), x_dir=(1, 0, 0), z_dir=(0, 1, 0))):
        with Locations((6, 4.5)):
            Rectangle(SKETCH10_W, SKETCH10_H)
        with Locations((5, 5)):
            Circle(SKETCH10_R, mode=Mode.SUBTRACT)
        with Locations((-32, 4.5)):
            Rectangle(SKETCH10_W, SKETCH10_H)
        with Locations((-31, 5)):
            Circle(SKETCH10_R, mode=Mode.SUBTRACT)
    extrude(amount=-BOSS_EXTRUDE7_DEPTH)

    # Sketch11 → Boss-Extrude9 (add, two sides)
    with BuildSketch(Plane.XY) as boss_extrude9_sk:
        with BuildLine():
            Line((-13.74863335, 28.198986818), (-12.25136665, 28.198986818))
            Line((-12.25136665, 28.198986818), (-12.25136665, 33.909462138))
            ThreePointArc((-12.25136665, 33.909462138), (-8.80136665, 38), (-12.25136665, 42.090537862))
            Line((-12.25136665, 42.090537862), (-12.25136665, 50.4))
            Line((-12.25136665, 50.4), (-5.95136665, 50.4))
            Line((-5.95136665, 50.4), (-5.95136665, 18))
            Line((-5.95136665, 18), (1.04863335, 11))
            Line((1.04863335, 11), (1.04863335, 8))
            Line((1.04863335, 8), (-27.04863335, 8))
            Line((-27.04863335, 8), (-27.04863335, 11))
            Line((-27.04863335, 11), (-20.04863335, 18))
            Line((-20.04863335, 18), (-20.04863335, 50.4))
            Line((-20.04863335, 50.4), (-13.74863335, 50.4))
            Line((-13.74863335, 50.4), (-13.74863335, 42.090537862))
            ThreePointArc((-13.74863335, 42.090537862), (-17.19863335, 38), (-13.74863335, 33.909462138))
            Line((-13.74863335, 33.909462138), (-13.74863335, 28.198986818))
        make_face()
    extrude(amount=BOSS_EXTRUDE9_DEPTH)
    extrude(boss_extrude9_sk.sketch, amount=-BOSS_EXTRUDE9_DEPTH_BACK)

    # Sketch12 → Cut-Extrude4 (cut, through all)
    with BuildSketch(Plane(origin=(-5.95136665, 0, 0), x_dir=(0, 0, -1), z_dir=(1, 0, 0))):
        with Locations((4.5, 46.4)):
            Circle(SKETCH12_R)
    extrude(amount=-CUT_EXTRUDE4_DEPTH, mode=Mode.SUBTRACT)

    # Sketch13 → Cut-Extrude5 (cut)
    with BuildSketch(Plane(origin=(0, 8, 0), x_dir=(1, 0, 0), z_dir=(0, 1, 0))):
        with Locations((-32, 10.1)):
            Rectangle(SKETCH13_W, SKETCH13_H)
    extrude(amount=-CUT_EXTRUDE5_DEPTH, mode=Mode.SUBTRACT)


solid = part.part
